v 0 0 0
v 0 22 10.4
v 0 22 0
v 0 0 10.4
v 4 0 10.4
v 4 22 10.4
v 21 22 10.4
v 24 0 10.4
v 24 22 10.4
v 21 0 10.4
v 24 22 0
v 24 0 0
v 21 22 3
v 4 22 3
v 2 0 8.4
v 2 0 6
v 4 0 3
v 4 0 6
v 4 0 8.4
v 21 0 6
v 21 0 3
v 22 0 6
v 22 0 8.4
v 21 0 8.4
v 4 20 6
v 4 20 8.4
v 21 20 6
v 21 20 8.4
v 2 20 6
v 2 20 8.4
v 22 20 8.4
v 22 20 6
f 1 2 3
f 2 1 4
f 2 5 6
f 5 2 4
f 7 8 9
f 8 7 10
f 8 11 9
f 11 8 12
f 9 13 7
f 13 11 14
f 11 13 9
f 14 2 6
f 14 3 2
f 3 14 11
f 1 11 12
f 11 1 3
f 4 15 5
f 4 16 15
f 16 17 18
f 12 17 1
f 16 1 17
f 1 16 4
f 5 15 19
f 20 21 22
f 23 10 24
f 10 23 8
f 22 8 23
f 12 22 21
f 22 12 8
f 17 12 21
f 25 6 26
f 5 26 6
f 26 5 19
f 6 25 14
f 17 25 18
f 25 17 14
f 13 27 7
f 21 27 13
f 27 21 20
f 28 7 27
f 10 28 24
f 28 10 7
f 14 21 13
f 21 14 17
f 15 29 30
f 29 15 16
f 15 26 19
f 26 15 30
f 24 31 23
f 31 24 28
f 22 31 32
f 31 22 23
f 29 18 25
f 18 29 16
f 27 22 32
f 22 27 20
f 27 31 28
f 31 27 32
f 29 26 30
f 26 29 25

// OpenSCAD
/*
  HMC5883L Compass holder for Dollbot (http://splashbots.blogspot.com/)

  Small plastic piece to slide-in and hold the 3-axis compass in place in the dollbot hull.
  
  Recommended 20% in-fill with no supports

*/

compass_length = 20;
compass_width = 18;
compass_height= 2.4;
compass_bottom_clearance = 3;
compass_top_clearance = 2;

base_height = 3;

holder_wall_thickness = 2;
holder_length = compass_length + holder_wall_thickness + holder_wall_thickness;
holder_width = compass_width + holder_wall_thickness + holder_wall_thickness;
holder_height = compass_height + base_height + compass_bottom_clearance + compass_top_clearance;

difference() {
  cube([holder_length, holder_width, holder_height]);

  translate([2 * holder_wall_thickness, 0, base_height]) {
    cube([compass_length - 2 - 1, compass_width + holder_wall_thickness + holder_wall_thickness, compass_height + compass_bottom_clearance + compass_top_clearance]);
  }
  
  translate([holder_wall_thickness, 0, base_height + compass_bottom_clearance]) {
      cube([compass_length, compass_width + holder_wall_thickness, compass_height]);
  }
}
